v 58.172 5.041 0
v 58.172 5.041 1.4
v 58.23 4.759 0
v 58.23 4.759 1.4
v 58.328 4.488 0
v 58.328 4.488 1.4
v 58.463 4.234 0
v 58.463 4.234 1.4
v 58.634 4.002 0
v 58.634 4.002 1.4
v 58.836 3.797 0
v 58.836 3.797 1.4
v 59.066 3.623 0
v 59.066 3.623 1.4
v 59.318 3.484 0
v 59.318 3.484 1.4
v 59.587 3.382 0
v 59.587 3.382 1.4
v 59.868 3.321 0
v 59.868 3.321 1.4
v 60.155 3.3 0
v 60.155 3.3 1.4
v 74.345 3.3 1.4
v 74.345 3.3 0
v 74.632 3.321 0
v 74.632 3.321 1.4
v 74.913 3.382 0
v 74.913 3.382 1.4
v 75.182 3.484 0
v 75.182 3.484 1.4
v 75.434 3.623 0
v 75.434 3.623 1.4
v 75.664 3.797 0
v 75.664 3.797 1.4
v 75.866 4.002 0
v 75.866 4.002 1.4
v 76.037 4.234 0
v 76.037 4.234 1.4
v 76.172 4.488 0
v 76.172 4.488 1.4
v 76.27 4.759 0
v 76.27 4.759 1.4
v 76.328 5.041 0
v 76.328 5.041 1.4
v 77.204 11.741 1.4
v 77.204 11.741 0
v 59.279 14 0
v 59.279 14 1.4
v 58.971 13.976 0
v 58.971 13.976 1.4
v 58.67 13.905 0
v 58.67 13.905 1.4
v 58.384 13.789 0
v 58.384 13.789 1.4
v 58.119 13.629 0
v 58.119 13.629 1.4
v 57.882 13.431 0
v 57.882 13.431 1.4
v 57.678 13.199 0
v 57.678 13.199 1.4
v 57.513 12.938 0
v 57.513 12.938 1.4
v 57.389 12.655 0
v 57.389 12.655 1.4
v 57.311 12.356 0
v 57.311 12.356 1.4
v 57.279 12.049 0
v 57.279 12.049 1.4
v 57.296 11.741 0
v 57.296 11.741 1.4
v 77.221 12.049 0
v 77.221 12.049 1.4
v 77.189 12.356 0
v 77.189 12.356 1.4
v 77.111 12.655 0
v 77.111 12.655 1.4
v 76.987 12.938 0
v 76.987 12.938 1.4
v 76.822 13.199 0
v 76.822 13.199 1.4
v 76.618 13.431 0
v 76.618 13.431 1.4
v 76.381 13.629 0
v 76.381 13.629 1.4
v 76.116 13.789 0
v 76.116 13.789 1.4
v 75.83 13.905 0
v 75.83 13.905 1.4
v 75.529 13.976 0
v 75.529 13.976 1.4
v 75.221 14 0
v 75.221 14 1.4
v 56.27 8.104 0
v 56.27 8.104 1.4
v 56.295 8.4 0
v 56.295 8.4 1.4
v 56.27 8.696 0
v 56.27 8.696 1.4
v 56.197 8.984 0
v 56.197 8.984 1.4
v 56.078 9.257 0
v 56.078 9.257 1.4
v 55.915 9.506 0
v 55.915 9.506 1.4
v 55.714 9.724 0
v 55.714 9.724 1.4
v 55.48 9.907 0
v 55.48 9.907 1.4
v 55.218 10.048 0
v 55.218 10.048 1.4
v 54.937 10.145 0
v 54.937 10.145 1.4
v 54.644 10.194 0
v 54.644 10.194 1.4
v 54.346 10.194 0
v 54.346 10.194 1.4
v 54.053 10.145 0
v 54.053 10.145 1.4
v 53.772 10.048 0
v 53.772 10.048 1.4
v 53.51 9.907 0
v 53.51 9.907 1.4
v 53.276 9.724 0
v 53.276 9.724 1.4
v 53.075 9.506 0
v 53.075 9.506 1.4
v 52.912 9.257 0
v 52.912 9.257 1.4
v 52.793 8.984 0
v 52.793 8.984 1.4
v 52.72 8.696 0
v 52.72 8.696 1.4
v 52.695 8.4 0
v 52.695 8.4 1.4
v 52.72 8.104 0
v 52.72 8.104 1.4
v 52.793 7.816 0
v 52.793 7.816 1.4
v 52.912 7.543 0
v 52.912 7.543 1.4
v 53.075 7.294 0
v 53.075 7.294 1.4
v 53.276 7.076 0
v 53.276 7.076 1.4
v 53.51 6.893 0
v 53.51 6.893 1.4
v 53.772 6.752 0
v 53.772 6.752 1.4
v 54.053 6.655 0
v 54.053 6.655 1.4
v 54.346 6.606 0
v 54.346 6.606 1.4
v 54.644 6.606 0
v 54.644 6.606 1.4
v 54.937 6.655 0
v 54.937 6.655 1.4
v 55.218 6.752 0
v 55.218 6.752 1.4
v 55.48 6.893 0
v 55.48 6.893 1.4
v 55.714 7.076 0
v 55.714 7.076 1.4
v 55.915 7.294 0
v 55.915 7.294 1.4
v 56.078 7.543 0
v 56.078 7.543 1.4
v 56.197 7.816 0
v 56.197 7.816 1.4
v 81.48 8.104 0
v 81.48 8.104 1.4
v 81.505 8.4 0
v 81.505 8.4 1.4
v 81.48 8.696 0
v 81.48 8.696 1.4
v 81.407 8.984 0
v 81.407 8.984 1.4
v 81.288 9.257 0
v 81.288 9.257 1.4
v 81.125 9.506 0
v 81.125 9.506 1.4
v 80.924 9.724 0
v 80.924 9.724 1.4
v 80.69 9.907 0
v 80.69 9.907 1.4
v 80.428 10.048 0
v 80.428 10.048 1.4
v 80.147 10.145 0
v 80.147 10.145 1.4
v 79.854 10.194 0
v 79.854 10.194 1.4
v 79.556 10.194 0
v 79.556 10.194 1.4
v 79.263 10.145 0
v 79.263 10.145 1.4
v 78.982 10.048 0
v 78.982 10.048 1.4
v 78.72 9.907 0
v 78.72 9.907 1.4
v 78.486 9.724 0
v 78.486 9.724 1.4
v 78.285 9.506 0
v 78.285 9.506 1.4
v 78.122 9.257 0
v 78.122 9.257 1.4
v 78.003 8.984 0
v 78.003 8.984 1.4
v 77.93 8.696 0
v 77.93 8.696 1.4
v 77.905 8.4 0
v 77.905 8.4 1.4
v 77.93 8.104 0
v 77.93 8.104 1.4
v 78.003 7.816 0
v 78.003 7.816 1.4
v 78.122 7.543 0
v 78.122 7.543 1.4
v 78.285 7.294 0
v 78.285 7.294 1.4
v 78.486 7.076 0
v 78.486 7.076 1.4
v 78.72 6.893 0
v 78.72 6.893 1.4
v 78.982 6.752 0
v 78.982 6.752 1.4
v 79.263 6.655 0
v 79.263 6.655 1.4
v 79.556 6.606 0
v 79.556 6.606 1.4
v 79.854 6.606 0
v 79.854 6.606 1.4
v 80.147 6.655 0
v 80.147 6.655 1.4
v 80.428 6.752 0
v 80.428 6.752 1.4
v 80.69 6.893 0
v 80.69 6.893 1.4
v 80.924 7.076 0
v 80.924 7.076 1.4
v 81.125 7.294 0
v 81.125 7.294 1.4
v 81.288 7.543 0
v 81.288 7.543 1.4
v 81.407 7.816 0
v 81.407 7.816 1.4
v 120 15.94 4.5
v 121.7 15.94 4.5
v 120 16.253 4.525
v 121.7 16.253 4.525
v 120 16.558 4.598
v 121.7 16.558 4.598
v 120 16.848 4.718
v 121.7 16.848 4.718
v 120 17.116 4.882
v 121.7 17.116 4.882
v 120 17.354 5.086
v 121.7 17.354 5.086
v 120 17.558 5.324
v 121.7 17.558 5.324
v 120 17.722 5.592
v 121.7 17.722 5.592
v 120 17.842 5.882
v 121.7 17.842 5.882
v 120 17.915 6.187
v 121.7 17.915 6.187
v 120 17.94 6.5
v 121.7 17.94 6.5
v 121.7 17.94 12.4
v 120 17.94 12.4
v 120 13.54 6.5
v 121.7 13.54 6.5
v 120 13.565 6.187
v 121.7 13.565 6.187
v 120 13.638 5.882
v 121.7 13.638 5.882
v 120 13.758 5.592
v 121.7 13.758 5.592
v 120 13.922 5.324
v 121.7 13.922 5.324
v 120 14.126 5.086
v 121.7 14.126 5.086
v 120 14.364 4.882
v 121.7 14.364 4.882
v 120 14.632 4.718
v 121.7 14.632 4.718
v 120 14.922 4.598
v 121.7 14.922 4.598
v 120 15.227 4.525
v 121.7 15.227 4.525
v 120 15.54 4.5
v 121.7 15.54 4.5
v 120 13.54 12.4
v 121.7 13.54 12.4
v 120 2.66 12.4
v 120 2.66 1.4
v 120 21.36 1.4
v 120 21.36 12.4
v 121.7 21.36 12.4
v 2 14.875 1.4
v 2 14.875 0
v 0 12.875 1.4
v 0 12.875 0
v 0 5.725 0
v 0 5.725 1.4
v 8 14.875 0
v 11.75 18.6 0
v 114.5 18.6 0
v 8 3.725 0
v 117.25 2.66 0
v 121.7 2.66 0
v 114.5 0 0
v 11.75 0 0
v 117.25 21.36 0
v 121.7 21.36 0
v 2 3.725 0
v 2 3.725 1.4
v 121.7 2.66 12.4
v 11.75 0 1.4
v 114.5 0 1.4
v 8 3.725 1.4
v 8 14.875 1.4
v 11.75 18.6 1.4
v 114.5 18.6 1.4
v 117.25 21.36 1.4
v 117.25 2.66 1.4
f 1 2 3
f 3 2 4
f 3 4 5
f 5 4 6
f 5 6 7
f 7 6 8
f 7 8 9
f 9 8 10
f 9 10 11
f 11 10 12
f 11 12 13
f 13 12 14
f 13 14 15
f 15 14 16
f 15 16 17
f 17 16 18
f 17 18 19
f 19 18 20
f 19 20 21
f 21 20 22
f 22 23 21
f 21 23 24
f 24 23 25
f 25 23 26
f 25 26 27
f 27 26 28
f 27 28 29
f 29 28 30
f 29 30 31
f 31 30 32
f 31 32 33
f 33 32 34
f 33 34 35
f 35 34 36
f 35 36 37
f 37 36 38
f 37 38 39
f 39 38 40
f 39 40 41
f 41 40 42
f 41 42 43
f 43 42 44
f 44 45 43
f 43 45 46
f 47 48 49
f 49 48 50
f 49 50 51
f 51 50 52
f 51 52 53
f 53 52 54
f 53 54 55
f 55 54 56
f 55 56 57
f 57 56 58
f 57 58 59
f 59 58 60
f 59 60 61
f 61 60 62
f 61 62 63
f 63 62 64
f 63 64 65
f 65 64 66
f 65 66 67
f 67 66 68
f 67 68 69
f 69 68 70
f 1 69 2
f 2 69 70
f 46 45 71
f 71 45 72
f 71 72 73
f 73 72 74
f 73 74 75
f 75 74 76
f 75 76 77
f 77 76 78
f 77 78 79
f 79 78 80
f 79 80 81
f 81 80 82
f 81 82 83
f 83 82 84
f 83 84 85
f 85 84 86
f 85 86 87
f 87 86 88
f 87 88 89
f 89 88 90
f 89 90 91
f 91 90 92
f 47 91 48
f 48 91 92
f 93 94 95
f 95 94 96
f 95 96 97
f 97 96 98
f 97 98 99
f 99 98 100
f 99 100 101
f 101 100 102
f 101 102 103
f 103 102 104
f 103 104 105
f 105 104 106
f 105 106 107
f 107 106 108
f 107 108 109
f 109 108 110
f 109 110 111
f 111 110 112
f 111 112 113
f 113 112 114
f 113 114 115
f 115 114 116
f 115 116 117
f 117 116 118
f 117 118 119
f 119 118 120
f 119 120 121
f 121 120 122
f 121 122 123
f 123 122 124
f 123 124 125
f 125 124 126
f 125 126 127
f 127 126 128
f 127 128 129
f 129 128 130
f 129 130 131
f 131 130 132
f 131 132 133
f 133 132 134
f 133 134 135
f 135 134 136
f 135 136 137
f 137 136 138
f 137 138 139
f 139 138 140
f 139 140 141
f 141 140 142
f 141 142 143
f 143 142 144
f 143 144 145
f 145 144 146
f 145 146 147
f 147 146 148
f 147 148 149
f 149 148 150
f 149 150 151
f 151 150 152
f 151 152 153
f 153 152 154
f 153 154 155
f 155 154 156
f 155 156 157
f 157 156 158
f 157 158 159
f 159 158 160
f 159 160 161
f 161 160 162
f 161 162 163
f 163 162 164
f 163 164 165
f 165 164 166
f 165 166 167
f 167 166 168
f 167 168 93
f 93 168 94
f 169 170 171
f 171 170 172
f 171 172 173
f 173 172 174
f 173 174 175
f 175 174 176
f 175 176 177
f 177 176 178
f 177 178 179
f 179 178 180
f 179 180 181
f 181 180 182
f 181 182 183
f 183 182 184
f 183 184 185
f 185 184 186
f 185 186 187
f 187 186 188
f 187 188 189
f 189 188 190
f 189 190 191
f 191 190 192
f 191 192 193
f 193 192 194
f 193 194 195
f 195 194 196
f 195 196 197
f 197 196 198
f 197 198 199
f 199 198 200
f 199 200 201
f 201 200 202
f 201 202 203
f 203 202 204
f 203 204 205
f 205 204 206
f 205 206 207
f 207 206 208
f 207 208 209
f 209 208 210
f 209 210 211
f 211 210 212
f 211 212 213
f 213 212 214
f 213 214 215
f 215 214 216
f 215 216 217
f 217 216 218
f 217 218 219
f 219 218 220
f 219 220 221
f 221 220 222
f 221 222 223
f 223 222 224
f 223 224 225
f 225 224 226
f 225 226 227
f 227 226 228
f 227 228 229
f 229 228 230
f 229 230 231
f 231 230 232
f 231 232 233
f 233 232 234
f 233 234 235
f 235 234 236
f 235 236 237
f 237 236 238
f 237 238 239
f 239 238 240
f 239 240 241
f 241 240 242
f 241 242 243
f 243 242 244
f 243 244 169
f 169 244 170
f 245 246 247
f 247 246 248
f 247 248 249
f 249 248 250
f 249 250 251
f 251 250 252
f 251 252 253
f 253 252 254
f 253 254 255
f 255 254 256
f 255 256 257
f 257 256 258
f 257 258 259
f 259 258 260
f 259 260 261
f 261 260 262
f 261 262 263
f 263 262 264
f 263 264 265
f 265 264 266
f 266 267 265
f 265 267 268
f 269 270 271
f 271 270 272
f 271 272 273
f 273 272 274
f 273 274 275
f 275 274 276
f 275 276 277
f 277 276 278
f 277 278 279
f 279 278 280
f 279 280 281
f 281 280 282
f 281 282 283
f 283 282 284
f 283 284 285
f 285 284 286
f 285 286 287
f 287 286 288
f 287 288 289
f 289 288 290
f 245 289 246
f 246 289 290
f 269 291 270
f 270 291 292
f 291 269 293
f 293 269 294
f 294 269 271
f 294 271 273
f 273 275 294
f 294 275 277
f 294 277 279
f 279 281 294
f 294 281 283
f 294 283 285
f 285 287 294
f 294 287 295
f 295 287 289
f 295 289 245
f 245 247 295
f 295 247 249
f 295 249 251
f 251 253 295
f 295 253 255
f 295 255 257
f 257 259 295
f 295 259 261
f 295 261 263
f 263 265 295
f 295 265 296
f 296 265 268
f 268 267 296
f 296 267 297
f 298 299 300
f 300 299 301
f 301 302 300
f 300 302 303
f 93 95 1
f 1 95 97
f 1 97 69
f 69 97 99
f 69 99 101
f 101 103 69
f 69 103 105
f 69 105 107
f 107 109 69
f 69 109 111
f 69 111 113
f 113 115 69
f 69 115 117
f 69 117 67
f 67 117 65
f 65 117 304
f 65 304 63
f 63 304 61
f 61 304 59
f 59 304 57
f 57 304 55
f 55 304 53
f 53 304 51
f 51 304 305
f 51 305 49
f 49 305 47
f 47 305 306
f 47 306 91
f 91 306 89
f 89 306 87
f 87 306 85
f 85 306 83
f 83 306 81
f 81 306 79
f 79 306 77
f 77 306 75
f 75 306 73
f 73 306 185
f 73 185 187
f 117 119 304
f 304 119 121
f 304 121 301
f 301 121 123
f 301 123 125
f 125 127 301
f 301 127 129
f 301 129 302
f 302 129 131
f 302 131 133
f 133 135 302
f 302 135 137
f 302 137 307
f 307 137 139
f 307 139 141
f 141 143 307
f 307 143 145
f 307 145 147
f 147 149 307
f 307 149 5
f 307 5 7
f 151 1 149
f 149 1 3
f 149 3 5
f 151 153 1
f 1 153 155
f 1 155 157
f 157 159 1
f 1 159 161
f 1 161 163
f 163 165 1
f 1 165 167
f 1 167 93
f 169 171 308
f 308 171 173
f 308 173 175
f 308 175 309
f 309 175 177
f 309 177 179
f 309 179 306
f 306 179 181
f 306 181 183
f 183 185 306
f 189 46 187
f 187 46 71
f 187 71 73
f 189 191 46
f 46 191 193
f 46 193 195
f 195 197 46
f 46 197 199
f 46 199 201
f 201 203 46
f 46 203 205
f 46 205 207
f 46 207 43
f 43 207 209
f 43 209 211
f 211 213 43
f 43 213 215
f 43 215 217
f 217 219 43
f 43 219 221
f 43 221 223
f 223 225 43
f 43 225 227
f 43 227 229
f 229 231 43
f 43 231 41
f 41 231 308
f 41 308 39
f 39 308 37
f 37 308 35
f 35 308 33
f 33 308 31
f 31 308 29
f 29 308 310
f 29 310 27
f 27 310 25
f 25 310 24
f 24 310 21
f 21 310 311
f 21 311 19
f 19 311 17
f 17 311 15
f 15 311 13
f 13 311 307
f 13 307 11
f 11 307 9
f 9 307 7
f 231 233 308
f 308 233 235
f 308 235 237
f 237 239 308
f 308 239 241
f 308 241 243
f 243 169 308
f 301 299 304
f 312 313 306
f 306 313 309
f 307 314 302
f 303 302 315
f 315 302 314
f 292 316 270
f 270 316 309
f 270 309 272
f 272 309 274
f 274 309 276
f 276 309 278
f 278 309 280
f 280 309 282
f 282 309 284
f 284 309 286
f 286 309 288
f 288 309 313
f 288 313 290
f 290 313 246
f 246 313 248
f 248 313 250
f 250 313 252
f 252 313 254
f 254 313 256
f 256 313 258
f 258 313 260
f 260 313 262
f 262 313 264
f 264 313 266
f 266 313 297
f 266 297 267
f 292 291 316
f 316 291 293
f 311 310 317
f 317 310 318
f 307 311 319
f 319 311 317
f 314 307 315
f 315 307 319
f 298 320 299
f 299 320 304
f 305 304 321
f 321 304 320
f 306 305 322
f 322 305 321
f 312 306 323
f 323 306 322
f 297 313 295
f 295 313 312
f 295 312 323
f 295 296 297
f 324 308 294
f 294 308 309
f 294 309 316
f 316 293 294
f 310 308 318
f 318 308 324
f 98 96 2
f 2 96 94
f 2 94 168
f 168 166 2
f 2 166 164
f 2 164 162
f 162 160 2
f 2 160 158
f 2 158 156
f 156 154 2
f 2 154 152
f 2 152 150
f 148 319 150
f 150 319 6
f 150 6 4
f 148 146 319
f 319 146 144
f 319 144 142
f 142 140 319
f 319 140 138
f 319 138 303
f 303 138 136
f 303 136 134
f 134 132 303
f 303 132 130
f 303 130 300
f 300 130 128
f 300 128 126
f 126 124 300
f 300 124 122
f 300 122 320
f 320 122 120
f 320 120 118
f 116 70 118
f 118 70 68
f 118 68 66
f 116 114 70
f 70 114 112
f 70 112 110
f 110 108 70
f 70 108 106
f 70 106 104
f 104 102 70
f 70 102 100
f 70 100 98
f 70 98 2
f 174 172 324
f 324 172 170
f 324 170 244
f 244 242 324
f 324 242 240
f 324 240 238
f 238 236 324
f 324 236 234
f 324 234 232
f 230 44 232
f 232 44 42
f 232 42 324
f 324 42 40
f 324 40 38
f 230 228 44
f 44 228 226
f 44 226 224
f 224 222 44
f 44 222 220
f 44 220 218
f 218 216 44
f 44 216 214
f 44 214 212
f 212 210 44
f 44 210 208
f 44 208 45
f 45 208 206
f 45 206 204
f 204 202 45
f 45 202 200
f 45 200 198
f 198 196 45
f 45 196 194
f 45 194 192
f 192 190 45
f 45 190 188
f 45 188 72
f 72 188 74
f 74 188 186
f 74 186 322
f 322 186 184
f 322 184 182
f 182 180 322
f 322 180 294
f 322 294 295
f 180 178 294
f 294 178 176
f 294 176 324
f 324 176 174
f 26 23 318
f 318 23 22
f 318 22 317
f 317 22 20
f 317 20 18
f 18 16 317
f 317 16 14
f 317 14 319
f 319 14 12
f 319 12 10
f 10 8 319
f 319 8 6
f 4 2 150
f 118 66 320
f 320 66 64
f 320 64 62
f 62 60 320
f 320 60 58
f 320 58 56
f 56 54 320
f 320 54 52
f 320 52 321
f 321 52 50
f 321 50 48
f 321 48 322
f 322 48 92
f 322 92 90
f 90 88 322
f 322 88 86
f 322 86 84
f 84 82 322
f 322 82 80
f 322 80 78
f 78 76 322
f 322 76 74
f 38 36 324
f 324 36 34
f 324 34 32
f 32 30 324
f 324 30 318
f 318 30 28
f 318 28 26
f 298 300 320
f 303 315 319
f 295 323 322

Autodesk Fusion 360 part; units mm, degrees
sketch "스케치1" plane through (0, 0, 0) normal (0, 0, 1) x (1, 0, 0)
  line L0 (11.75, 18.6) -> (114.5, 18.6)
  line L1 (114.5, 18.6) -> (114.5, 0)
  line L2 (114.5, 0) -> (11.75, 0)
  line L3 (11.75, 0) -> (11.75, 18.6)
  line L4 (0, 14.875) -> (8, 14.875)
  line L5 (8, 14.875) -> (8, 3.725)
  line L6 (8, 3.725) -> (0, 3.725)
  line L7 (0, 3.725) -> (0, 14.875)
  line L8 (0, 9.3) -> (8, 9.3) construction
  line L9 (8, 14.875) -> (11.75, 18.6)
  line L10 (8, 3.725) -> (11.75, 0)
  line L11 (1.75, 0) -> (22.5, 0)
  line L12 (0, 1.75) -> (0, 22.5)
  line L13 (120, 21.36) -> (117.25, 21.36)
  line L14 (117.25, 21.36) -> (117.25, 2.66)
  line L15 (117.25, 2.66) -> (120, 2.66)
  line L16 (120, 2.66) -> (120, 21.36)
  line L17 (114.5, 0) -> (144, 0) construction
  line L18 (114.5, 18.6) -> (117.25, 21.36)
  line L19 (114.5, 0) -> (117.25, 2.66)
  line L20 (120, 21.36) -> (121.7, 21.36)
  line L21 (121.7, 21.36) -> (121.7, 2.66)
  line L22 (121.7, 2.66) -> (120, 2.66)
  line L23 (120, 2.66) -> (120, 21.36)
  dimension "d1" = 102.75
  dimension "d2" = 18.6
  dimension "d3" = 8
  dimension "d4" = 11.15
  dimension "d5" = 3.75
  dimension "d6" = 18.7
  dimension "d7" = 2.66
  dimension "d8" = 2.75
  dimension "d9" = 2.75
  dimension "d10" = 1.7
extrude "돌출1" add sketch "스케치1" along normal blind 1.4 contours L0 L1 L2 L3 L11 | L3 L5 L9 L10 | L1 L14 L18 L19 | L4 L5 L6 L7 L12 | L13 L14 L15 L16 L23
extrude "돌출2" add sketch "스케치1" along normal blind 12.4 contours L16 L20 L21 L22 L23
chamfer "모따기1" distance 2 angle 45 2 edges at (0, 3.725, 0.7) (0, 14.875, 0.7)
sketch "스케치2" plane through (121.7, 0, 0) normal (1, 0, 0) x (0, 1, 0)
  line L0 (2.66, 0) -> (21.36, 0)
  line L1 (21.36, 0) -> (21.36, 12.4)
  line L2 (21.36, 12.4) -> (2.66, 12.4)
  line L3 (2.66, 12.4) -> (2.66, 0)
  line L4 (13.54, 12.4) -> (17.94, 12.4)
  line L5 (17.94, 12.4) -> (17.94, 4.5)
  line L6 (17.94, 4.5) -> (13.54, 4.5)
  line L7 (13.54, 4.5) -> (13.54, 12.4)
  dimension "d16" = 3.42
  dimension "d17" = 4.4
  dimension "d18" = 7.9
extrude "돌출3" cut sketch "스케치2" against normal blind 3 contours L2 L4 L5 L6 L7
fillet "모깎기1" radius 2 2 edges at (120.85, 13.54, 4.5) (120.85, 17.94, 4.5)
sketch "스케치3" plane through (0, 0, 1.4) normal (0, 0, 1) x (-1, 0, 0)
  line L0 (-2, -14.875) -> (0, -12.875)
  line L1 (0, -12.875) -> (0, -5.725)
  line L2 (0, -5.725) -> (-2, -3.725)
  line L3 (-2, -3.725) -> (-8, -3.725)
  line L4 (-8, -3.725) -> (-11.75, 0)
  line L5 (-11.75, 0) -> (-114.5, 0)
  line L6 (-114.5, 0) -> (-117.25, -2.66)
  line L7 (-117.25, -2.66) -> (-120, -2.66)
  line L8 (-120, -2.66) -> (-120, -21.36)
  line L9 (-120, -21.36) -> (-117.25, -21.36)
  line L10 (-117.25, -21.36) -> (-114.5, -18.6)
  line L11 (-114.5, -18.6) -> (-11.75, -18.6)
  line L12 (-11.75, -18.6) -> (-8, -14.875)
  line L13 (-8, -14.875) -> (-2, -14.875)
  line L14 (7.5, -3.3) -> (-137.5, -3.3) construction
  line L15 (-114.5, 0) -> (-11.75, 0)
  line L16 (7.5, -14) -> (-137.5, -14) construction
  line L17 (-57, -14) -> (-77.5, -14)
  line L18 (-58.4, -3.3) -> (-76.1, -3.3)
  line L19 (-57, -14) -> (-58.4, -3.3)
  line L20 (-77.5, -14) -> (-76.1, -3.3)
  line L21 (-67.25, -32) -> (-67.25, 14) construction
  line L22 (-57, -26) -> (-57, 12) construction
  line L23 (-77.5, -26) -> (-77.5, 12) construction
  circle A0 centre (-54.495, -8.4) radius 1.8
  circle A1 centre (-79.705, -8.4) radius 1.8
  line L24 (-77.905, -12) -> (-77.905, -5.5195) construction
  line L25 (-56.295, -12) -> (-56.295, -5.5195) construction
  line L26 (-53, -6.6) -> (-81.5, -6.6) construction
  dimension "d23" = 3.3
  dimension "d24" = 10.7
  dimension "d25" = 20.5
  dimension "d26" = 17.7
  dimension "d27" = 42.5
  dimension "d28" = 3.6
  dimension "d30" = 0.705
  dimension "d31" = 0.405
  dimension "d32" = 3.3
extrude "돌출4" cut sketch "스케치3" against normal blind 2 contours L17 L18 L19 L20 | A0 | A1
fillet "모깎기2" radius 2 4 edges at (77.5, 14, 0.7) (57, 14, 0.7) (76.1, 3.3, 0.7) (58.4, 3.3, 0.7)
